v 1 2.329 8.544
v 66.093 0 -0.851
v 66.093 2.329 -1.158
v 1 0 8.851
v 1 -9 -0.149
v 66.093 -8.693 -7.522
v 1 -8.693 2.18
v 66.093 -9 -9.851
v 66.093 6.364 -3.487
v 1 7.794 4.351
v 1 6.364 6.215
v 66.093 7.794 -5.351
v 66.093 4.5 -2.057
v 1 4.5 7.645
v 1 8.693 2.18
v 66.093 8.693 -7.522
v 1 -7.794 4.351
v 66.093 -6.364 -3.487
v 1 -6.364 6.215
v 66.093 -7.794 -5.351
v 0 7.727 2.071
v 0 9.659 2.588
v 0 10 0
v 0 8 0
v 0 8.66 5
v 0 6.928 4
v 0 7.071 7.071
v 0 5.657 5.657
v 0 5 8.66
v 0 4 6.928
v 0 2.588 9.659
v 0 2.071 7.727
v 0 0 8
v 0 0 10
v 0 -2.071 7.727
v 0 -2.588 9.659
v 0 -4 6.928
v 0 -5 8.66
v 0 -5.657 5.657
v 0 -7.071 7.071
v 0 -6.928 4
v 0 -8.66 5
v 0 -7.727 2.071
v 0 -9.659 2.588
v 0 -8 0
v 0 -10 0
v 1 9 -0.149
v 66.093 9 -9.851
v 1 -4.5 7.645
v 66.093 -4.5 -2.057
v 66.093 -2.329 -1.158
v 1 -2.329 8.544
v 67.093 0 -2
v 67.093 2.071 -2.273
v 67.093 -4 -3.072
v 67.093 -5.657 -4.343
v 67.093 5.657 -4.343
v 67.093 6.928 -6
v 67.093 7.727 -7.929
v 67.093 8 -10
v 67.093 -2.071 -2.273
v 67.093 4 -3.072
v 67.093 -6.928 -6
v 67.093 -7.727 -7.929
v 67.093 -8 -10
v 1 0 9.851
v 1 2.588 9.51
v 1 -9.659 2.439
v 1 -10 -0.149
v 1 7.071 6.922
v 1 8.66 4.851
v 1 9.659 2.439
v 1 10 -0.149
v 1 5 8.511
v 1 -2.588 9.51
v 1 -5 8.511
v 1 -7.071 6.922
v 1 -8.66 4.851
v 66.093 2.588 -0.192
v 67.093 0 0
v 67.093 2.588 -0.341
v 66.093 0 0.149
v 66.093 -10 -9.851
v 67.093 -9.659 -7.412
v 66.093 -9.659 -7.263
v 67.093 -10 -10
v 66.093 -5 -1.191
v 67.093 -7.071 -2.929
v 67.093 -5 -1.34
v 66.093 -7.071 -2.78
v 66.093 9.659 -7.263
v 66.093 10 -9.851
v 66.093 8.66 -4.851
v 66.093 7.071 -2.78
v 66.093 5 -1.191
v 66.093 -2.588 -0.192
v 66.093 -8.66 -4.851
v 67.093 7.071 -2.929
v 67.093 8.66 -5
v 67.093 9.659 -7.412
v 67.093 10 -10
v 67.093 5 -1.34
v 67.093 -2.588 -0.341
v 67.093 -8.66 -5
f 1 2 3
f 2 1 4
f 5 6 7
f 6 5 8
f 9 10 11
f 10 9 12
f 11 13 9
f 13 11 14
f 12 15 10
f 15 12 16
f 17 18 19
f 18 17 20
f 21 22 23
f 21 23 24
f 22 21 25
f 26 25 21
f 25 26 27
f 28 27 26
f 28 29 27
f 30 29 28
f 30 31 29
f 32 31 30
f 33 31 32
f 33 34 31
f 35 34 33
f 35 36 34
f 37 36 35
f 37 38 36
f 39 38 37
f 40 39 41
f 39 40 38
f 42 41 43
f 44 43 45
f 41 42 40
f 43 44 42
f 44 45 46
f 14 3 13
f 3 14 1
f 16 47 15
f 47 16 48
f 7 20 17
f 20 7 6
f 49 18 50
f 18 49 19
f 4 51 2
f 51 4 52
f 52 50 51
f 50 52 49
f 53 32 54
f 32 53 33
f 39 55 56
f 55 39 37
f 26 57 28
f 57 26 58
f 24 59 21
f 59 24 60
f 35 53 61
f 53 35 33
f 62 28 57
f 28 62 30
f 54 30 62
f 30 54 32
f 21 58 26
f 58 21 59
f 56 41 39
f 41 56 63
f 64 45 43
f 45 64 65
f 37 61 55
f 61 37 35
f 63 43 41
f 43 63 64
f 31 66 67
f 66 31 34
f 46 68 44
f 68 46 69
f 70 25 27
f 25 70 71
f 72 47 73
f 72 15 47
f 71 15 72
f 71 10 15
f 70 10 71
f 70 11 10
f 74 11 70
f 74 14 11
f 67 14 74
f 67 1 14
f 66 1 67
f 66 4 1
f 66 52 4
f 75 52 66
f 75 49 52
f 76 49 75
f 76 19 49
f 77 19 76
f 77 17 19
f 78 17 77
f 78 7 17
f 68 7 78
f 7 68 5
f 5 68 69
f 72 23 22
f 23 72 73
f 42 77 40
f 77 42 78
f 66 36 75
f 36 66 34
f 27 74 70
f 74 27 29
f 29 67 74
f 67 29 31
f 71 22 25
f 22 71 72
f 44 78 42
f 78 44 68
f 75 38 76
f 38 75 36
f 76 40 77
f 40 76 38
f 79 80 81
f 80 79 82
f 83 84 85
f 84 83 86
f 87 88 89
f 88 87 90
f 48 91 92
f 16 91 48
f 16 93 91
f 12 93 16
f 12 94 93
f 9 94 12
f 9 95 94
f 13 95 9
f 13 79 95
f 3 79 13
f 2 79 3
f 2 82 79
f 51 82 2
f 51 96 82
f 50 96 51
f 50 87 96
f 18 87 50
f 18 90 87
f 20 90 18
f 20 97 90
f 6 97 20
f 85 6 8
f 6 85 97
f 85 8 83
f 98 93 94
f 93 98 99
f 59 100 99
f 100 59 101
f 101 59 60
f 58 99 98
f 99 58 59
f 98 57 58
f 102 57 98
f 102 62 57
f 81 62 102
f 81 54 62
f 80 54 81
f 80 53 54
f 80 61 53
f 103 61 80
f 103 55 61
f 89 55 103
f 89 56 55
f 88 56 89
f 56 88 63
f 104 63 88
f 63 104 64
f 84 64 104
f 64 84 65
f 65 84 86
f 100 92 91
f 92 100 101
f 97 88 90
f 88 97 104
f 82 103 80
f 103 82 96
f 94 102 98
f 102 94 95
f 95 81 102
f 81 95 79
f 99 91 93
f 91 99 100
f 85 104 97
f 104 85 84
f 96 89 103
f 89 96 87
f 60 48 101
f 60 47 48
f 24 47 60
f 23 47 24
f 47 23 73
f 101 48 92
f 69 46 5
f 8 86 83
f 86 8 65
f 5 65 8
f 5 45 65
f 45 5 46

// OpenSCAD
// file: ../build_environments.scad
// build_environments.scad: modules to build level sections
//

module pool(diameter=10.0, wall_height=2.0, step_width=3.0, connections=[])
{
    difference() {
        union() {
        difference() {
            cylinder(h=0.5,r1=diameter+step_width,r2=diameter+step_width,$fn=48);
            translate([0,0,-0.1])
                cylinder(h=0.7,r1=diameter,r2=diameter,$fn=48);
        }
        difference() {
            cylinder(h=wall_height,r1=diameter+step_width+1.0,r2=diameter+step_width+1.0,$fn=48);
            translate([0,0,-0.1])
                cylinder(h=wall_height+0.2,r1=diameter+step_width,r2=diameter+step_width,$fn=48);
        }
        }
    
        for (c = connections)
        {
            rotate([0,90,0]) {
                angle = atan2(c[1],c[0]);
                rotate([-angle,0,0]) {
                    cylinder(h=diameter+5.0,r1=c[2],r2=c[2],$fn=48);
                }
            }
        }
    }
}

module straight(length=10.0, width=2.0, dy1=0.0, dy2=0.0, dz=0.0)
{
    dims = [0, 0, 0, 0, 0, (dz/length)];
    matrix = [
        [ 1, dims[0], dims[1], 0 ],
        [ dims[2], 1, dims[4], 0 ],
        [ dims[5], dims[3], 1, 0 ],
        [ 0, 0, 0, 1 ]
    ];
    multmatrix(matrix)
    difference() {
        translate([dy1,0,0])
        union() {
            rotate([0,90,0]) {
                difference() {
                    cylinder(h=(length-dy1-dy2),r1=width+1.0,r2=width+1.0,$fn=24);
                    translate([0,0,-0.1])
                        cylinder(h=(length-dy1-dy2+0.2),r1=width,r2=width,$fn=24);
                }
                difference() {
                    cylinder(h=1.0,r1=width+2.0,r2=width+2.0,$fn=24);
                    translate([0,0,-0.1])
                        cylinder(h=1.2,r1=width,r2=width,$fn=24);
                }
                translate([0,0,(length-dy1-dy2)-1.0]) {
                    difference() {
                        cylinder(h=1.0,r1=width+2.0,r2=width+2.0,$fn=24);
                        translate([0,0,-0.1])
                            cylinder(h=1.2,r1=width,r2=width,$fn=24);
                    }
                }
            }
        }
        translate([0,0,-(2*width+4.0)/2])
            cube([3*length,3*length,2*width+4.0],center=true);
    }
}

module curve(p0=[0,0], center=[0,0], dir=1, angle=0.0, width=2.0)
{
    radius = sqrt((p0[0]-center[0])*(p0[0]-center[0]) + (p0[1]-center[1])*(p0[1]-center[1]));
    if (dir == 0) {
        difference() {
            rotate([0,0,-90])
            difference() {
                rotate_extrude(angle = angle, convexity = 10, $fn=32)
                    translate([radius, 0, 0])
                        circle(r = width+1.0,$fn=24);
                rotate([0,0,-1.0])
                    rotate_extrude(angle = angle+2.0, convexity = 10, $fn=32)
                        translate([radius, 0, 0])
                            circle(r = width,$fn=24);
            }
            translate([0,0,-(2*width+4.0)/2])
                cube([5*radius,5*radius,2*width+4.0],center=true);
        }
    }
    else {
        difference() {
            rotate([0,0,90])
            difference() {
                rotate_extrude(angle = -angle, convexity = 10, $fn=32)
                    translate([radius, 0, 0])
                        circle(r = width+1.0,$fn=24);
                rotate([0,0,1.0])
                    rotate_extrude(angle = -angle-2.0, convexity = 10, $fn=32)
                        translate([radius, 0, 0])
                            circle(r = width,$fn=24);
            }
            translate([0,0,-(2*width+4.0)/2])
                cube([5*radius,5*radius,2*width+4.0],center=true);
        }
    }

}

// test pool
//pool(diameter=12.0000, wall_height=3.0000, step_width=3.0000, connections=[[0.0000,-26.0000,2.0000], [23.6074,0.0000,2.0000]]);

// test straight, slope
//straight(length=26.0000, width=2.0000, dy1=11.8322, dy2=6.7082, dz=0.0000);
//straight(length=29.1549, width=12.0000, dy1=0.0000, dy2=0.0000, dz=-15.0000);

// test curve
//curve(p0=[23.6074, 0.0000], center=[23.6074, 5.0000], dir=0, angle=60.1011, width=2.0000);
//curve(p0=[33.6426, 12.4219], center=[37.9771, 9.9295], dir=1, angle=120.4627, width=2.0000);
// main file
use <../build_environments.scad>;
straight(length=67.0926, width=8.0000, dy1=0.0000, dy2=0.0000, dz=-10.0000);
